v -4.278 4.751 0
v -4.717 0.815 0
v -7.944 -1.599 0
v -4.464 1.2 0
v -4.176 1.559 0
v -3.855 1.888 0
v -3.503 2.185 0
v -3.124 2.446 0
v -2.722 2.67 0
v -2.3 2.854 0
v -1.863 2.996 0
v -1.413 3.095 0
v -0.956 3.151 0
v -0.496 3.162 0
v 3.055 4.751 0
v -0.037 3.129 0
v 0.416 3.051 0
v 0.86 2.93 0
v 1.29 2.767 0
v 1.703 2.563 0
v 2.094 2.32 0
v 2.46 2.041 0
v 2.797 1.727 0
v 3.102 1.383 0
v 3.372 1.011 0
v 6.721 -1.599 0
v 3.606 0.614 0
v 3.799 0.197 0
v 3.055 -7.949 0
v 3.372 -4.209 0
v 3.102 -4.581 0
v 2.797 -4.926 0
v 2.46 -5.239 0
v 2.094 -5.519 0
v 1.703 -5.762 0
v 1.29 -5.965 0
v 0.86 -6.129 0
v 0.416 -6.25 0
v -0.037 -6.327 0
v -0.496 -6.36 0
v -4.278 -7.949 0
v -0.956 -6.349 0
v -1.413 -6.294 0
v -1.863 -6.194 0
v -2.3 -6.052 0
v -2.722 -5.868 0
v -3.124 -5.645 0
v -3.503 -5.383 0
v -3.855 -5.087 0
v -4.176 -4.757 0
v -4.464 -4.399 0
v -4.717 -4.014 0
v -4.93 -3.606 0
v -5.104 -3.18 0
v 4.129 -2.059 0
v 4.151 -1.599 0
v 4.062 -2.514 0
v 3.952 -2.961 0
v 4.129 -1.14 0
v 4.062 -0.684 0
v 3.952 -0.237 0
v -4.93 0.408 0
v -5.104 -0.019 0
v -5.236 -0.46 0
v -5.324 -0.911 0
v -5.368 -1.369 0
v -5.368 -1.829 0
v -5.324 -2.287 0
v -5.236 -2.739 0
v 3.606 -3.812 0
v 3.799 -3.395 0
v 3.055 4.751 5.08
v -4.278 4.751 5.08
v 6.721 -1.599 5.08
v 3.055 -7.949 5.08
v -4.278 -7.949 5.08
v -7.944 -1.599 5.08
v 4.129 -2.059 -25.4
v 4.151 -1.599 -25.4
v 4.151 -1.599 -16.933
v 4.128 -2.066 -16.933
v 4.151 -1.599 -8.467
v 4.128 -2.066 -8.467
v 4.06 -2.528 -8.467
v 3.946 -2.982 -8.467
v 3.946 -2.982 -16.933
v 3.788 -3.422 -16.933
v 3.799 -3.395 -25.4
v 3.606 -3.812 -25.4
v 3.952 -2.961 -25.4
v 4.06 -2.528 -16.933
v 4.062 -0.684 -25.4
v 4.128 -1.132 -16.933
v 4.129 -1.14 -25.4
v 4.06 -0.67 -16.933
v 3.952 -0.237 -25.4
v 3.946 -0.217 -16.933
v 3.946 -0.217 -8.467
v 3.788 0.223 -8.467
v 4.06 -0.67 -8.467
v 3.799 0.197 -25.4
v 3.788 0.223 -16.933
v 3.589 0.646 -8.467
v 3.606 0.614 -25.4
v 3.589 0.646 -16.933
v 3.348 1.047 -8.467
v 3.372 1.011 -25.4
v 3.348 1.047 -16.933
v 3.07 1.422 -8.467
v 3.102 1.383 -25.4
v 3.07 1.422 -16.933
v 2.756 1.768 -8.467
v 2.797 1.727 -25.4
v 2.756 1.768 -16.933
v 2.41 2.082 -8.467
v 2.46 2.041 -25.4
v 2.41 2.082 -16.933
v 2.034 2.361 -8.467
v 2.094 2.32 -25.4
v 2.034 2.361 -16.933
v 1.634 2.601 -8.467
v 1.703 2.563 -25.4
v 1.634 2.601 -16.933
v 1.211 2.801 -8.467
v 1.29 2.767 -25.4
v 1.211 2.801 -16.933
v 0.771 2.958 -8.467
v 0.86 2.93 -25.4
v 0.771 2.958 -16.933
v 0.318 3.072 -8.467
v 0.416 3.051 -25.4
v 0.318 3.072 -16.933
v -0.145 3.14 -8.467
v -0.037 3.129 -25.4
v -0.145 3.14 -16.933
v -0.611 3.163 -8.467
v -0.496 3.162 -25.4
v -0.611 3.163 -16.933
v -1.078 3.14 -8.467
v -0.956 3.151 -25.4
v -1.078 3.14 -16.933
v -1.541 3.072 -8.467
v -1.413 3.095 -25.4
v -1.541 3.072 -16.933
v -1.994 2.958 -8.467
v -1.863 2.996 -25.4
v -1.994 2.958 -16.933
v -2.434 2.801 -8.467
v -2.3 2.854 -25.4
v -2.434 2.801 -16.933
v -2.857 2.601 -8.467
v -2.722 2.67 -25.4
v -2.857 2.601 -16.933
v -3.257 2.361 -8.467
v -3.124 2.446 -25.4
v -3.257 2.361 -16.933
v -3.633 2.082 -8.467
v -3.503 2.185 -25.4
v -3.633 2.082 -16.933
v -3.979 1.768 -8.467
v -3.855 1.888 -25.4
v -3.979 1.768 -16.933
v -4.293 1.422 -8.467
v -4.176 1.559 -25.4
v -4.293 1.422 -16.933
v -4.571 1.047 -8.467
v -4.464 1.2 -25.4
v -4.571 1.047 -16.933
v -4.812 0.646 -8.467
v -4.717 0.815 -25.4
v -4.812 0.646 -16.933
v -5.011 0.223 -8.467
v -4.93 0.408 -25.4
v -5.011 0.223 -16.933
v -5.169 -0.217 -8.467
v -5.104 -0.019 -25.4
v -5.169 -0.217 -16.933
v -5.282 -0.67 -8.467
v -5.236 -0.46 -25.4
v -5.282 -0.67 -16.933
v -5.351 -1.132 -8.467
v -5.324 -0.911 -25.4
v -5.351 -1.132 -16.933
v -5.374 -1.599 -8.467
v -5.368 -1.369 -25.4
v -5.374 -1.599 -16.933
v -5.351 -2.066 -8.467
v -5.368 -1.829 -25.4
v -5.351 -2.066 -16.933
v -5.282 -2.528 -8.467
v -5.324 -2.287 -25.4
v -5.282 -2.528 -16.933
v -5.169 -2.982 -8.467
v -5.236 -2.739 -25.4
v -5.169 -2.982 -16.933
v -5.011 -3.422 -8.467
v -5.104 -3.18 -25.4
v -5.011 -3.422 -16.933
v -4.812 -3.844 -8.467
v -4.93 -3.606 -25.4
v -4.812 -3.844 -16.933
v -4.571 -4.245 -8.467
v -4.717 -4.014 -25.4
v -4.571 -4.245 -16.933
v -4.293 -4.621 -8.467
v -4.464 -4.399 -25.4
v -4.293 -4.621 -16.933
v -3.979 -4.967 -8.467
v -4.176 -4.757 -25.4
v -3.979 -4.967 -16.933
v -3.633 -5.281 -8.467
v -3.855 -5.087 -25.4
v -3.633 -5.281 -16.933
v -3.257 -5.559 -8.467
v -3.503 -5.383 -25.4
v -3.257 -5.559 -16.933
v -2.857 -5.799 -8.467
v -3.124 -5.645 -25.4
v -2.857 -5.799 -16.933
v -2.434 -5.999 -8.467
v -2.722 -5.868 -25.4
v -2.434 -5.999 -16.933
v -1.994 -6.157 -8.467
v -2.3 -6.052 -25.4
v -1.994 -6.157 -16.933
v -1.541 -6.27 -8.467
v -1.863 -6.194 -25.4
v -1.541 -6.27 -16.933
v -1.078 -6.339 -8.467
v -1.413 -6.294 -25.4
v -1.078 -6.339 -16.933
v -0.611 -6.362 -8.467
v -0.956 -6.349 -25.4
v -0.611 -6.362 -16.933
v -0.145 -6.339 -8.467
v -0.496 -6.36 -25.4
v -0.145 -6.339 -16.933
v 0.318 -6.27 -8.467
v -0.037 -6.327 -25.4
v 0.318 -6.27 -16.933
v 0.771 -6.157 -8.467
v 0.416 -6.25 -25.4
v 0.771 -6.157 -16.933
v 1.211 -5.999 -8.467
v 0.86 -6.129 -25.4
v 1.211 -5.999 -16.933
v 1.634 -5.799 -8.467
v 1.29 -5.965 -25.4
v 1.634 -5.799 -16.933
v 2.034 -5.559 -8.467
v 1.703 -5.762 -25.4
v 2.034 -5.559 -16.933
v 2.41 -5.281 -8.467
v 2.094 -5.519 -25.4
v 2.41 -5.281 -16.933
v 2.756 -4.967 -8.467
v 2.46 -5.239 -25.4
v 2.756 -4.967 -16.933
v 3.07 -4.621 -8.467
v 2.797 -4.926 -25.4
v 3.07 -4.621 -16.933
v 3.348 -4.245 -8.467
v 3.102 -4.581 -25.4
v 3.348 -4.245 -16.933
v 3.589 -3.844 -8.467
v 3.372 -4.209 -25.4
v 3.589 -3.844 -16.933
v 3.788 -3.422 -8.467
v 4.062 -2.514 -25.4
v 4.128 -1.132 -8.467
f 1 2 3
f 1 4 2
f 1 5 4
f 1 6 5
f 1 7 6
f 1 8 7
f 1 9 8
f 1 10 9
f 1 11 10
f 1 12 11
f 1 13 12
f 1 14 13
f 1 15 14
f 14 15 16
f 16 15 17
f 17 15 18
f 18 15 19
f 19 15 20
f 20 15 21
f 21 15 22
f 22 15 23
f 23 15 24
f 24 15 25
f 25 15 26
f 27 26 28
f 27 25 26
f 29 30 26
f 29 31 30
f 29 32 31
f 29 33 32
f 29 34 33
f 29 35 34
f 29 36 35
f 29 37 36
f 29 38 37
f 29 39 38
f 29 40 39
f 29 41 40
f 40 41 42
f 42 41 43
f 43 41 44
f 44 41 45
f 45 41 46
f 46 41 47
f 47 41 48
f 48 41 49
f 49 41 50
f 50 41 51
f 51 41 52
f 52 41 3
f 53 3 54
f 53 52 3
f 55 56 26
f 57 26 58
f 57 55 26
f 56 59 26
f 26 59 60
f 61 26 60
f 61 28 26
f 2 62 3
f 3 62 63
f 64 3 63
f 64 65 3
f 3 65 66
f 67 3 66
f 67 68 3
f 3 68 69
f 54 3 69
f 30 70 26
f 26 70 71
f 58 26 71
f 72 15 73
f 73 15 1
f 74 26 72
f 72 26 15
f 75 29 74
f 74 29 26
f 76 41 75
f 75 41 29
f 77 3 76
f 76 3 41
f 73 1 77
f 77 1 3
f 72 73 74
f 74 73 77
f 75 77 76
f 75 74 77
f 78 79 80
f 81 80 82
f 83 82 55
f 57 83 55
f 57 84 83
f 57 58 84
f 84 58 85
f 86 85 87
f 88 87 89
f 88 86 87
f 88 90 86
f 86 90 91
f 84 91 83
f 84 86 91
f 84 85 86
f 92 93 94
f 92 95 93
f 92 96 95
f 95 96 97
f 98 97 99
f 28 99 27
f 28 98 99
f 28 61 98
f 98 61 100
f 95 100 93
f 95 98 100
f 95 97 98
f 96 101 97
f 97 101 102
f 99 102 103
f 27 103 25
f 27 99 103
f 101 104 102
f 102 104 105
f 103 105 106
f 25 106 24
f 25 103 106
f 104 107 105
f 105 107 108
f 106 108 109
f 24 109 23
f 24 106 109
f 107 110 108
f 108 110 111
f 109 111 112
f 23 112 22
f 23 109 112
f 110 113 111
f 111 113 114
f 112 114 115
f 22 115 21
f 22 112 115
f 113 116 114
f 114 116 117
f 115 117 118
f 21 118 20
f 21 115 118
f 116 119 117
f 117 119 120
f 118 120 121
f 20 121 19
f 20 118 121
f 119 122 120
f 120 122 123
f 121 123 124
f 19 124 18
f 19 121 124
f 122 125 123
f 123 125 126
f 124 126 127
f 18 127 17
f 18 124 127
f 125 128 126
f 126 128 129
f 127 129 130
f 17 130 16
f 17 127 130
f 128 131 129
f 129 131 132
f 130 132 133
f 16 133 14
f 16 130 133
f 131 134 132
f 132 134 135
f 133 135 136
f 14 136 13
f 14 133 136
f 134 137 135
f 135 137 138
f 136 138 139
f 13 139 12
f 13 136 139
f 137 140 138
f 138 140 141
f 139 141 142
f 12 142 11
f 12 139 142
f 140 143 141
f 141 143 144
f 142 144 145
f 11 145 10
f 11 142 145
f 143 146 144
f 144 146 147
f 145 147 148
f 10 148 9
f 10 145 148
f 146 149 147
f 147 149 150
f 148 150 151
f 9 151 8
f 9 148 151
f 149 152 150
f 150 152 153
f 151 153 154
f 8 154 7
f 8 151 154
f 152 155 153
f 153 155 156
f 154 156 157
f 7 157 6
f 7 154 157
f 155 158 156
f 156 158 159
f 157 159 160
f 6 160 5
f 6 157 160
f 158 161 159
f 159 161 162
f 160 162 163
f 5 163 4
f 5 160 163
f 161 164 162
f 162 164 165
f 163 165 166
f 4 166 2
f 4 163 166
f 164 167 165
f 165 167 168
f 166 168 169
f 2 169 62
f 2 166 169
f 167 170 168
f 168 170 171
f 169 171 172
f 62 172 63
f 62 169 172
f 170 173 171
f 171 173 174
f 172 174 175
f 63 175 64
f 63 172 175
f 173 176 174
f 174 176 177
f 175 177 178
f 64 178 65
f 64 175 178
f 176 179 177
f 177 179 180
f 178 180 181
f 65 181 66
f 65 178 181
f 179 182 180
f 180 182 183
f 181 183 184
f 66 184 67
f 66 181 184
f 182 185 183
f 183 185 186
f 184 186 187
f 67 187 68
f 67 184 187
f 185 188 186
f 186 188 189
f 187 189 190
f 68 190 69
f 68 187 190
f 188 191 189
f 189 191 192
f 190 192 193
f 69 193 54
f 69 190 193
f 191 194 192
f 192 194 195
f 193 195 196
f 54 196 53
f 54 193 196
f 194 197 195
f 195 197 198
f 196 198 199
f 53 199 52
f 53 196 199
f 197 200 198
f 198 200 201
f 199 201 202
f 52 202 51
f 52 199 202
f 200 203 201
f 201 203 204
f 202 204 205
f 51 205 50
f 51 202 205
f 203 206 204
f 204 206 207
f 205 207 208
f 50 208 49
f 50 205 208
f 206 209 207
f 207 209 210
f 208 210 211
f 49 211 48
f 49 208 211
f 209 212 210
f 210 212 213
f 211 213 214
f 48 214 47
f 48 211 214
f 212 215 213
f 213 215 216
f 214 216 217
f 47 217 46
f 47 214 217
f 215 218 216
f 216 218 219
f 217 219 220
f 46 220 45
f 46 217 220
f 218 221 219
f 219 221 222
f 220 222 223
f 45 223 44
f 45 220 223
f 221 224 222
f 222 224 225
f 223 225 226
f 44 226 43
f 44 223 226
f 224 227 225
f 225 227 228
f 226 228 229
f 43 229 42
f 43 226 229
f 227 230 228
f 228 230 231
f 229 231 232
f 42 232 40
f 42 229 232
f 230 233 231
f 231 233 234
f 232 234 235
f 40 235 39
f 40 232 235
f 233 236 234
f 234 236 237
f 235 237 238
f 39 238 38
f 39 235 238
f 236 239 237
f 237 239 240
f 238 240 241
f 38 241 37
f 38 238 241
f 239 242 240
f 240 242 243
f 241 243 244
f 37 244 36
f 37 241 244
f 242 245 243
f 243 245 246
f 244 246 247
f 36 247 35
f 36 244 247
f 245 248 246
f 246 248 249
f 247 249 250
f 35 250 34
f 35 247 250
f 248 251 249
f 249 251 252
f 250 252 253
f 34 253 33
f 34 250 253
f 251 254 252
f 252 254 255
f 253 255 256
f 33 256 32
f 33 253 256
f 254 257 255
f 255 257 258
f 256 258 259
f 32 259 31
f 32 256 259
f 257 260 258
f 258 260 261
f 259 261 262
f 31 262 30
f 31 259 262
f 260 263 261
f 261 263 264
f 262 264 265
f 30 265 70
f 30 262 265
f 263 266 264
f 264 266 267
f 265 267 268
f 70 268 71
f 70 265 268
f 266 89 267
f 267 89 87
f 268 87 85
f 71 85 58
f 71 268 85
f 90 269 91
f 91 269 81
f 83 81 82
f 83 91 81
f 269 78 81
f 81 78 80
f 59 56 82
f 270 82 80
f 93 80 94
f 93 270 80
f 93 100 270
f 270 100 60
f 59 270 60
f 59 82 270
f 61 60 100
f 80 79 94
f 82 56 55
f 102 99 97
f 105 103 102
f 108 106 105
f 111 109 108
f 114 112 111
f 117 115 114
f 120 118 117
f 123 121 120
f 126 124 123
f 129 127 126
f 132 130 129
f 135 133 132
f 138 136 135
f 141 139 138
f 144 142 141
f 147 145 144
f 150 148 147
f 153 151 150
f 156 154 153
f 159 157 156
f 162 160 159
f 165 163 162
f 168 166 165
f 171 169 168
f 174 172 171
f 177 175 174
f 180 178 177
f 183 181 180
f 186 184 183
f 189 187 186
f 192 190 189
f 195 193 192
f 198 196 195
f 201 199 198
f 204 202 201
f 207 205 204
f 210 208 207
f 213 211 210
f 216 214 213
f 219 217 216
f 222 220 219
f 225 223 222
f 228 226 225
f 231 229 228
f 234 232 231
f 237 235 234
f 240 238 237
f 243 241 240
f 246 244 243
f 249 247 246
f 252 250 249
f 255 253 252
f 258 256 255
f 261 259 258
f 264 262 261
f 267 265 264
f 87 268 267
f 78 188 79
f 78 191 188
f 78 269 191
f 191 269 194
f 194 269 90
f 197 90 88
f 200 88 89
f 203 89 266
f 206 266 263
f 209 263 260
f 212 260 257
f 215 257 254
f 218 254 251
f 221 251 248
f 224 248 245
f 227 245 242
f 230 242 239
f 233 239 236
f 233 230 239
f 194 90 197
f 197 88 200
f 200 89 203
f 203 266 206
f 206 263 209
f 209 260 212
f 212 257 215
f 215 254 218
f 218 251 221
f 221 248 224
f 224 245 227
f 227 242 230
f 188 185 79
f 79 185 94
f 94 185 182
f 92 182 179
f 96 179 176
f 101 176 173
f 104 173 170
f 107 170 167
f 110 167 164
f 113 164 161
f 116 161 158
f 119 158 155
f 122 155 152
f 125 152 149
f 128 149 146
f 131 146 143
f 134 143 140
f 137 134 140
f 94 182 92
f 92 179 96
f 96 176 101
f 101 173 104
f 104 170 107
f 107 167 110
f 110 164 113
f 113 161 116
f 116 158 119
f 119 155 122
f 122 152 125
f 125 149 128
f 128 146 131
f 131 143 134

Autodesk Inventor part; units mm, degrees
ref_plane "YZ Plane" through (0, 0, 0) normal (1, 0, 0) x (0, 1, 0)
ref_plane "XZ Plane" through (0, 0, 0) normal (0, 1, 0) x (-1, 0, 0)
ref_plane "XY Plane" through (0, 0, 0) normal (0, 0, 1) x (1, 0, 0)
sketch "Sketch1" plane through (0, 0, 0) normal (0, 0, 1) x (1, 0, 0)
  circle A0 centre (-0.6115, -1.5992) radius 4.7625
  line L0 (-7.9438, -1.5992) -> (-4.2777, 4.7508)
  line L1 (-4.2777, 4.7508) -> (3.0547, 4.7508)
  line L2 (3.0547, 4.7508) -> (6.7209, -1.5992)
  line L3 (6.7209, -1.5992) -> (3.0547, -7.9492)
  line L4 (3.0547, -7.9492) -> (-4.2777, -7.9492)
  line L5 (-4.2777, -7.9492) -> (-7.9438, -1.5992)
  dimension "d10" = 12.7
  dimension "d20" = 9.525
extrude "Extrusion1" add sketch "Sketch1" against normal blind 25.4 contours A0
extrude "Extrusion2" add sketch "Sketch1" along normal blind 5.08 contours A0 | L0 L1 L2 L3 L4 L5
thread "Thread2" size "3/8-16 UNC" class "2A" standard "ANSI Unified Screw Threads" full length
properties part number "HW-00043"
